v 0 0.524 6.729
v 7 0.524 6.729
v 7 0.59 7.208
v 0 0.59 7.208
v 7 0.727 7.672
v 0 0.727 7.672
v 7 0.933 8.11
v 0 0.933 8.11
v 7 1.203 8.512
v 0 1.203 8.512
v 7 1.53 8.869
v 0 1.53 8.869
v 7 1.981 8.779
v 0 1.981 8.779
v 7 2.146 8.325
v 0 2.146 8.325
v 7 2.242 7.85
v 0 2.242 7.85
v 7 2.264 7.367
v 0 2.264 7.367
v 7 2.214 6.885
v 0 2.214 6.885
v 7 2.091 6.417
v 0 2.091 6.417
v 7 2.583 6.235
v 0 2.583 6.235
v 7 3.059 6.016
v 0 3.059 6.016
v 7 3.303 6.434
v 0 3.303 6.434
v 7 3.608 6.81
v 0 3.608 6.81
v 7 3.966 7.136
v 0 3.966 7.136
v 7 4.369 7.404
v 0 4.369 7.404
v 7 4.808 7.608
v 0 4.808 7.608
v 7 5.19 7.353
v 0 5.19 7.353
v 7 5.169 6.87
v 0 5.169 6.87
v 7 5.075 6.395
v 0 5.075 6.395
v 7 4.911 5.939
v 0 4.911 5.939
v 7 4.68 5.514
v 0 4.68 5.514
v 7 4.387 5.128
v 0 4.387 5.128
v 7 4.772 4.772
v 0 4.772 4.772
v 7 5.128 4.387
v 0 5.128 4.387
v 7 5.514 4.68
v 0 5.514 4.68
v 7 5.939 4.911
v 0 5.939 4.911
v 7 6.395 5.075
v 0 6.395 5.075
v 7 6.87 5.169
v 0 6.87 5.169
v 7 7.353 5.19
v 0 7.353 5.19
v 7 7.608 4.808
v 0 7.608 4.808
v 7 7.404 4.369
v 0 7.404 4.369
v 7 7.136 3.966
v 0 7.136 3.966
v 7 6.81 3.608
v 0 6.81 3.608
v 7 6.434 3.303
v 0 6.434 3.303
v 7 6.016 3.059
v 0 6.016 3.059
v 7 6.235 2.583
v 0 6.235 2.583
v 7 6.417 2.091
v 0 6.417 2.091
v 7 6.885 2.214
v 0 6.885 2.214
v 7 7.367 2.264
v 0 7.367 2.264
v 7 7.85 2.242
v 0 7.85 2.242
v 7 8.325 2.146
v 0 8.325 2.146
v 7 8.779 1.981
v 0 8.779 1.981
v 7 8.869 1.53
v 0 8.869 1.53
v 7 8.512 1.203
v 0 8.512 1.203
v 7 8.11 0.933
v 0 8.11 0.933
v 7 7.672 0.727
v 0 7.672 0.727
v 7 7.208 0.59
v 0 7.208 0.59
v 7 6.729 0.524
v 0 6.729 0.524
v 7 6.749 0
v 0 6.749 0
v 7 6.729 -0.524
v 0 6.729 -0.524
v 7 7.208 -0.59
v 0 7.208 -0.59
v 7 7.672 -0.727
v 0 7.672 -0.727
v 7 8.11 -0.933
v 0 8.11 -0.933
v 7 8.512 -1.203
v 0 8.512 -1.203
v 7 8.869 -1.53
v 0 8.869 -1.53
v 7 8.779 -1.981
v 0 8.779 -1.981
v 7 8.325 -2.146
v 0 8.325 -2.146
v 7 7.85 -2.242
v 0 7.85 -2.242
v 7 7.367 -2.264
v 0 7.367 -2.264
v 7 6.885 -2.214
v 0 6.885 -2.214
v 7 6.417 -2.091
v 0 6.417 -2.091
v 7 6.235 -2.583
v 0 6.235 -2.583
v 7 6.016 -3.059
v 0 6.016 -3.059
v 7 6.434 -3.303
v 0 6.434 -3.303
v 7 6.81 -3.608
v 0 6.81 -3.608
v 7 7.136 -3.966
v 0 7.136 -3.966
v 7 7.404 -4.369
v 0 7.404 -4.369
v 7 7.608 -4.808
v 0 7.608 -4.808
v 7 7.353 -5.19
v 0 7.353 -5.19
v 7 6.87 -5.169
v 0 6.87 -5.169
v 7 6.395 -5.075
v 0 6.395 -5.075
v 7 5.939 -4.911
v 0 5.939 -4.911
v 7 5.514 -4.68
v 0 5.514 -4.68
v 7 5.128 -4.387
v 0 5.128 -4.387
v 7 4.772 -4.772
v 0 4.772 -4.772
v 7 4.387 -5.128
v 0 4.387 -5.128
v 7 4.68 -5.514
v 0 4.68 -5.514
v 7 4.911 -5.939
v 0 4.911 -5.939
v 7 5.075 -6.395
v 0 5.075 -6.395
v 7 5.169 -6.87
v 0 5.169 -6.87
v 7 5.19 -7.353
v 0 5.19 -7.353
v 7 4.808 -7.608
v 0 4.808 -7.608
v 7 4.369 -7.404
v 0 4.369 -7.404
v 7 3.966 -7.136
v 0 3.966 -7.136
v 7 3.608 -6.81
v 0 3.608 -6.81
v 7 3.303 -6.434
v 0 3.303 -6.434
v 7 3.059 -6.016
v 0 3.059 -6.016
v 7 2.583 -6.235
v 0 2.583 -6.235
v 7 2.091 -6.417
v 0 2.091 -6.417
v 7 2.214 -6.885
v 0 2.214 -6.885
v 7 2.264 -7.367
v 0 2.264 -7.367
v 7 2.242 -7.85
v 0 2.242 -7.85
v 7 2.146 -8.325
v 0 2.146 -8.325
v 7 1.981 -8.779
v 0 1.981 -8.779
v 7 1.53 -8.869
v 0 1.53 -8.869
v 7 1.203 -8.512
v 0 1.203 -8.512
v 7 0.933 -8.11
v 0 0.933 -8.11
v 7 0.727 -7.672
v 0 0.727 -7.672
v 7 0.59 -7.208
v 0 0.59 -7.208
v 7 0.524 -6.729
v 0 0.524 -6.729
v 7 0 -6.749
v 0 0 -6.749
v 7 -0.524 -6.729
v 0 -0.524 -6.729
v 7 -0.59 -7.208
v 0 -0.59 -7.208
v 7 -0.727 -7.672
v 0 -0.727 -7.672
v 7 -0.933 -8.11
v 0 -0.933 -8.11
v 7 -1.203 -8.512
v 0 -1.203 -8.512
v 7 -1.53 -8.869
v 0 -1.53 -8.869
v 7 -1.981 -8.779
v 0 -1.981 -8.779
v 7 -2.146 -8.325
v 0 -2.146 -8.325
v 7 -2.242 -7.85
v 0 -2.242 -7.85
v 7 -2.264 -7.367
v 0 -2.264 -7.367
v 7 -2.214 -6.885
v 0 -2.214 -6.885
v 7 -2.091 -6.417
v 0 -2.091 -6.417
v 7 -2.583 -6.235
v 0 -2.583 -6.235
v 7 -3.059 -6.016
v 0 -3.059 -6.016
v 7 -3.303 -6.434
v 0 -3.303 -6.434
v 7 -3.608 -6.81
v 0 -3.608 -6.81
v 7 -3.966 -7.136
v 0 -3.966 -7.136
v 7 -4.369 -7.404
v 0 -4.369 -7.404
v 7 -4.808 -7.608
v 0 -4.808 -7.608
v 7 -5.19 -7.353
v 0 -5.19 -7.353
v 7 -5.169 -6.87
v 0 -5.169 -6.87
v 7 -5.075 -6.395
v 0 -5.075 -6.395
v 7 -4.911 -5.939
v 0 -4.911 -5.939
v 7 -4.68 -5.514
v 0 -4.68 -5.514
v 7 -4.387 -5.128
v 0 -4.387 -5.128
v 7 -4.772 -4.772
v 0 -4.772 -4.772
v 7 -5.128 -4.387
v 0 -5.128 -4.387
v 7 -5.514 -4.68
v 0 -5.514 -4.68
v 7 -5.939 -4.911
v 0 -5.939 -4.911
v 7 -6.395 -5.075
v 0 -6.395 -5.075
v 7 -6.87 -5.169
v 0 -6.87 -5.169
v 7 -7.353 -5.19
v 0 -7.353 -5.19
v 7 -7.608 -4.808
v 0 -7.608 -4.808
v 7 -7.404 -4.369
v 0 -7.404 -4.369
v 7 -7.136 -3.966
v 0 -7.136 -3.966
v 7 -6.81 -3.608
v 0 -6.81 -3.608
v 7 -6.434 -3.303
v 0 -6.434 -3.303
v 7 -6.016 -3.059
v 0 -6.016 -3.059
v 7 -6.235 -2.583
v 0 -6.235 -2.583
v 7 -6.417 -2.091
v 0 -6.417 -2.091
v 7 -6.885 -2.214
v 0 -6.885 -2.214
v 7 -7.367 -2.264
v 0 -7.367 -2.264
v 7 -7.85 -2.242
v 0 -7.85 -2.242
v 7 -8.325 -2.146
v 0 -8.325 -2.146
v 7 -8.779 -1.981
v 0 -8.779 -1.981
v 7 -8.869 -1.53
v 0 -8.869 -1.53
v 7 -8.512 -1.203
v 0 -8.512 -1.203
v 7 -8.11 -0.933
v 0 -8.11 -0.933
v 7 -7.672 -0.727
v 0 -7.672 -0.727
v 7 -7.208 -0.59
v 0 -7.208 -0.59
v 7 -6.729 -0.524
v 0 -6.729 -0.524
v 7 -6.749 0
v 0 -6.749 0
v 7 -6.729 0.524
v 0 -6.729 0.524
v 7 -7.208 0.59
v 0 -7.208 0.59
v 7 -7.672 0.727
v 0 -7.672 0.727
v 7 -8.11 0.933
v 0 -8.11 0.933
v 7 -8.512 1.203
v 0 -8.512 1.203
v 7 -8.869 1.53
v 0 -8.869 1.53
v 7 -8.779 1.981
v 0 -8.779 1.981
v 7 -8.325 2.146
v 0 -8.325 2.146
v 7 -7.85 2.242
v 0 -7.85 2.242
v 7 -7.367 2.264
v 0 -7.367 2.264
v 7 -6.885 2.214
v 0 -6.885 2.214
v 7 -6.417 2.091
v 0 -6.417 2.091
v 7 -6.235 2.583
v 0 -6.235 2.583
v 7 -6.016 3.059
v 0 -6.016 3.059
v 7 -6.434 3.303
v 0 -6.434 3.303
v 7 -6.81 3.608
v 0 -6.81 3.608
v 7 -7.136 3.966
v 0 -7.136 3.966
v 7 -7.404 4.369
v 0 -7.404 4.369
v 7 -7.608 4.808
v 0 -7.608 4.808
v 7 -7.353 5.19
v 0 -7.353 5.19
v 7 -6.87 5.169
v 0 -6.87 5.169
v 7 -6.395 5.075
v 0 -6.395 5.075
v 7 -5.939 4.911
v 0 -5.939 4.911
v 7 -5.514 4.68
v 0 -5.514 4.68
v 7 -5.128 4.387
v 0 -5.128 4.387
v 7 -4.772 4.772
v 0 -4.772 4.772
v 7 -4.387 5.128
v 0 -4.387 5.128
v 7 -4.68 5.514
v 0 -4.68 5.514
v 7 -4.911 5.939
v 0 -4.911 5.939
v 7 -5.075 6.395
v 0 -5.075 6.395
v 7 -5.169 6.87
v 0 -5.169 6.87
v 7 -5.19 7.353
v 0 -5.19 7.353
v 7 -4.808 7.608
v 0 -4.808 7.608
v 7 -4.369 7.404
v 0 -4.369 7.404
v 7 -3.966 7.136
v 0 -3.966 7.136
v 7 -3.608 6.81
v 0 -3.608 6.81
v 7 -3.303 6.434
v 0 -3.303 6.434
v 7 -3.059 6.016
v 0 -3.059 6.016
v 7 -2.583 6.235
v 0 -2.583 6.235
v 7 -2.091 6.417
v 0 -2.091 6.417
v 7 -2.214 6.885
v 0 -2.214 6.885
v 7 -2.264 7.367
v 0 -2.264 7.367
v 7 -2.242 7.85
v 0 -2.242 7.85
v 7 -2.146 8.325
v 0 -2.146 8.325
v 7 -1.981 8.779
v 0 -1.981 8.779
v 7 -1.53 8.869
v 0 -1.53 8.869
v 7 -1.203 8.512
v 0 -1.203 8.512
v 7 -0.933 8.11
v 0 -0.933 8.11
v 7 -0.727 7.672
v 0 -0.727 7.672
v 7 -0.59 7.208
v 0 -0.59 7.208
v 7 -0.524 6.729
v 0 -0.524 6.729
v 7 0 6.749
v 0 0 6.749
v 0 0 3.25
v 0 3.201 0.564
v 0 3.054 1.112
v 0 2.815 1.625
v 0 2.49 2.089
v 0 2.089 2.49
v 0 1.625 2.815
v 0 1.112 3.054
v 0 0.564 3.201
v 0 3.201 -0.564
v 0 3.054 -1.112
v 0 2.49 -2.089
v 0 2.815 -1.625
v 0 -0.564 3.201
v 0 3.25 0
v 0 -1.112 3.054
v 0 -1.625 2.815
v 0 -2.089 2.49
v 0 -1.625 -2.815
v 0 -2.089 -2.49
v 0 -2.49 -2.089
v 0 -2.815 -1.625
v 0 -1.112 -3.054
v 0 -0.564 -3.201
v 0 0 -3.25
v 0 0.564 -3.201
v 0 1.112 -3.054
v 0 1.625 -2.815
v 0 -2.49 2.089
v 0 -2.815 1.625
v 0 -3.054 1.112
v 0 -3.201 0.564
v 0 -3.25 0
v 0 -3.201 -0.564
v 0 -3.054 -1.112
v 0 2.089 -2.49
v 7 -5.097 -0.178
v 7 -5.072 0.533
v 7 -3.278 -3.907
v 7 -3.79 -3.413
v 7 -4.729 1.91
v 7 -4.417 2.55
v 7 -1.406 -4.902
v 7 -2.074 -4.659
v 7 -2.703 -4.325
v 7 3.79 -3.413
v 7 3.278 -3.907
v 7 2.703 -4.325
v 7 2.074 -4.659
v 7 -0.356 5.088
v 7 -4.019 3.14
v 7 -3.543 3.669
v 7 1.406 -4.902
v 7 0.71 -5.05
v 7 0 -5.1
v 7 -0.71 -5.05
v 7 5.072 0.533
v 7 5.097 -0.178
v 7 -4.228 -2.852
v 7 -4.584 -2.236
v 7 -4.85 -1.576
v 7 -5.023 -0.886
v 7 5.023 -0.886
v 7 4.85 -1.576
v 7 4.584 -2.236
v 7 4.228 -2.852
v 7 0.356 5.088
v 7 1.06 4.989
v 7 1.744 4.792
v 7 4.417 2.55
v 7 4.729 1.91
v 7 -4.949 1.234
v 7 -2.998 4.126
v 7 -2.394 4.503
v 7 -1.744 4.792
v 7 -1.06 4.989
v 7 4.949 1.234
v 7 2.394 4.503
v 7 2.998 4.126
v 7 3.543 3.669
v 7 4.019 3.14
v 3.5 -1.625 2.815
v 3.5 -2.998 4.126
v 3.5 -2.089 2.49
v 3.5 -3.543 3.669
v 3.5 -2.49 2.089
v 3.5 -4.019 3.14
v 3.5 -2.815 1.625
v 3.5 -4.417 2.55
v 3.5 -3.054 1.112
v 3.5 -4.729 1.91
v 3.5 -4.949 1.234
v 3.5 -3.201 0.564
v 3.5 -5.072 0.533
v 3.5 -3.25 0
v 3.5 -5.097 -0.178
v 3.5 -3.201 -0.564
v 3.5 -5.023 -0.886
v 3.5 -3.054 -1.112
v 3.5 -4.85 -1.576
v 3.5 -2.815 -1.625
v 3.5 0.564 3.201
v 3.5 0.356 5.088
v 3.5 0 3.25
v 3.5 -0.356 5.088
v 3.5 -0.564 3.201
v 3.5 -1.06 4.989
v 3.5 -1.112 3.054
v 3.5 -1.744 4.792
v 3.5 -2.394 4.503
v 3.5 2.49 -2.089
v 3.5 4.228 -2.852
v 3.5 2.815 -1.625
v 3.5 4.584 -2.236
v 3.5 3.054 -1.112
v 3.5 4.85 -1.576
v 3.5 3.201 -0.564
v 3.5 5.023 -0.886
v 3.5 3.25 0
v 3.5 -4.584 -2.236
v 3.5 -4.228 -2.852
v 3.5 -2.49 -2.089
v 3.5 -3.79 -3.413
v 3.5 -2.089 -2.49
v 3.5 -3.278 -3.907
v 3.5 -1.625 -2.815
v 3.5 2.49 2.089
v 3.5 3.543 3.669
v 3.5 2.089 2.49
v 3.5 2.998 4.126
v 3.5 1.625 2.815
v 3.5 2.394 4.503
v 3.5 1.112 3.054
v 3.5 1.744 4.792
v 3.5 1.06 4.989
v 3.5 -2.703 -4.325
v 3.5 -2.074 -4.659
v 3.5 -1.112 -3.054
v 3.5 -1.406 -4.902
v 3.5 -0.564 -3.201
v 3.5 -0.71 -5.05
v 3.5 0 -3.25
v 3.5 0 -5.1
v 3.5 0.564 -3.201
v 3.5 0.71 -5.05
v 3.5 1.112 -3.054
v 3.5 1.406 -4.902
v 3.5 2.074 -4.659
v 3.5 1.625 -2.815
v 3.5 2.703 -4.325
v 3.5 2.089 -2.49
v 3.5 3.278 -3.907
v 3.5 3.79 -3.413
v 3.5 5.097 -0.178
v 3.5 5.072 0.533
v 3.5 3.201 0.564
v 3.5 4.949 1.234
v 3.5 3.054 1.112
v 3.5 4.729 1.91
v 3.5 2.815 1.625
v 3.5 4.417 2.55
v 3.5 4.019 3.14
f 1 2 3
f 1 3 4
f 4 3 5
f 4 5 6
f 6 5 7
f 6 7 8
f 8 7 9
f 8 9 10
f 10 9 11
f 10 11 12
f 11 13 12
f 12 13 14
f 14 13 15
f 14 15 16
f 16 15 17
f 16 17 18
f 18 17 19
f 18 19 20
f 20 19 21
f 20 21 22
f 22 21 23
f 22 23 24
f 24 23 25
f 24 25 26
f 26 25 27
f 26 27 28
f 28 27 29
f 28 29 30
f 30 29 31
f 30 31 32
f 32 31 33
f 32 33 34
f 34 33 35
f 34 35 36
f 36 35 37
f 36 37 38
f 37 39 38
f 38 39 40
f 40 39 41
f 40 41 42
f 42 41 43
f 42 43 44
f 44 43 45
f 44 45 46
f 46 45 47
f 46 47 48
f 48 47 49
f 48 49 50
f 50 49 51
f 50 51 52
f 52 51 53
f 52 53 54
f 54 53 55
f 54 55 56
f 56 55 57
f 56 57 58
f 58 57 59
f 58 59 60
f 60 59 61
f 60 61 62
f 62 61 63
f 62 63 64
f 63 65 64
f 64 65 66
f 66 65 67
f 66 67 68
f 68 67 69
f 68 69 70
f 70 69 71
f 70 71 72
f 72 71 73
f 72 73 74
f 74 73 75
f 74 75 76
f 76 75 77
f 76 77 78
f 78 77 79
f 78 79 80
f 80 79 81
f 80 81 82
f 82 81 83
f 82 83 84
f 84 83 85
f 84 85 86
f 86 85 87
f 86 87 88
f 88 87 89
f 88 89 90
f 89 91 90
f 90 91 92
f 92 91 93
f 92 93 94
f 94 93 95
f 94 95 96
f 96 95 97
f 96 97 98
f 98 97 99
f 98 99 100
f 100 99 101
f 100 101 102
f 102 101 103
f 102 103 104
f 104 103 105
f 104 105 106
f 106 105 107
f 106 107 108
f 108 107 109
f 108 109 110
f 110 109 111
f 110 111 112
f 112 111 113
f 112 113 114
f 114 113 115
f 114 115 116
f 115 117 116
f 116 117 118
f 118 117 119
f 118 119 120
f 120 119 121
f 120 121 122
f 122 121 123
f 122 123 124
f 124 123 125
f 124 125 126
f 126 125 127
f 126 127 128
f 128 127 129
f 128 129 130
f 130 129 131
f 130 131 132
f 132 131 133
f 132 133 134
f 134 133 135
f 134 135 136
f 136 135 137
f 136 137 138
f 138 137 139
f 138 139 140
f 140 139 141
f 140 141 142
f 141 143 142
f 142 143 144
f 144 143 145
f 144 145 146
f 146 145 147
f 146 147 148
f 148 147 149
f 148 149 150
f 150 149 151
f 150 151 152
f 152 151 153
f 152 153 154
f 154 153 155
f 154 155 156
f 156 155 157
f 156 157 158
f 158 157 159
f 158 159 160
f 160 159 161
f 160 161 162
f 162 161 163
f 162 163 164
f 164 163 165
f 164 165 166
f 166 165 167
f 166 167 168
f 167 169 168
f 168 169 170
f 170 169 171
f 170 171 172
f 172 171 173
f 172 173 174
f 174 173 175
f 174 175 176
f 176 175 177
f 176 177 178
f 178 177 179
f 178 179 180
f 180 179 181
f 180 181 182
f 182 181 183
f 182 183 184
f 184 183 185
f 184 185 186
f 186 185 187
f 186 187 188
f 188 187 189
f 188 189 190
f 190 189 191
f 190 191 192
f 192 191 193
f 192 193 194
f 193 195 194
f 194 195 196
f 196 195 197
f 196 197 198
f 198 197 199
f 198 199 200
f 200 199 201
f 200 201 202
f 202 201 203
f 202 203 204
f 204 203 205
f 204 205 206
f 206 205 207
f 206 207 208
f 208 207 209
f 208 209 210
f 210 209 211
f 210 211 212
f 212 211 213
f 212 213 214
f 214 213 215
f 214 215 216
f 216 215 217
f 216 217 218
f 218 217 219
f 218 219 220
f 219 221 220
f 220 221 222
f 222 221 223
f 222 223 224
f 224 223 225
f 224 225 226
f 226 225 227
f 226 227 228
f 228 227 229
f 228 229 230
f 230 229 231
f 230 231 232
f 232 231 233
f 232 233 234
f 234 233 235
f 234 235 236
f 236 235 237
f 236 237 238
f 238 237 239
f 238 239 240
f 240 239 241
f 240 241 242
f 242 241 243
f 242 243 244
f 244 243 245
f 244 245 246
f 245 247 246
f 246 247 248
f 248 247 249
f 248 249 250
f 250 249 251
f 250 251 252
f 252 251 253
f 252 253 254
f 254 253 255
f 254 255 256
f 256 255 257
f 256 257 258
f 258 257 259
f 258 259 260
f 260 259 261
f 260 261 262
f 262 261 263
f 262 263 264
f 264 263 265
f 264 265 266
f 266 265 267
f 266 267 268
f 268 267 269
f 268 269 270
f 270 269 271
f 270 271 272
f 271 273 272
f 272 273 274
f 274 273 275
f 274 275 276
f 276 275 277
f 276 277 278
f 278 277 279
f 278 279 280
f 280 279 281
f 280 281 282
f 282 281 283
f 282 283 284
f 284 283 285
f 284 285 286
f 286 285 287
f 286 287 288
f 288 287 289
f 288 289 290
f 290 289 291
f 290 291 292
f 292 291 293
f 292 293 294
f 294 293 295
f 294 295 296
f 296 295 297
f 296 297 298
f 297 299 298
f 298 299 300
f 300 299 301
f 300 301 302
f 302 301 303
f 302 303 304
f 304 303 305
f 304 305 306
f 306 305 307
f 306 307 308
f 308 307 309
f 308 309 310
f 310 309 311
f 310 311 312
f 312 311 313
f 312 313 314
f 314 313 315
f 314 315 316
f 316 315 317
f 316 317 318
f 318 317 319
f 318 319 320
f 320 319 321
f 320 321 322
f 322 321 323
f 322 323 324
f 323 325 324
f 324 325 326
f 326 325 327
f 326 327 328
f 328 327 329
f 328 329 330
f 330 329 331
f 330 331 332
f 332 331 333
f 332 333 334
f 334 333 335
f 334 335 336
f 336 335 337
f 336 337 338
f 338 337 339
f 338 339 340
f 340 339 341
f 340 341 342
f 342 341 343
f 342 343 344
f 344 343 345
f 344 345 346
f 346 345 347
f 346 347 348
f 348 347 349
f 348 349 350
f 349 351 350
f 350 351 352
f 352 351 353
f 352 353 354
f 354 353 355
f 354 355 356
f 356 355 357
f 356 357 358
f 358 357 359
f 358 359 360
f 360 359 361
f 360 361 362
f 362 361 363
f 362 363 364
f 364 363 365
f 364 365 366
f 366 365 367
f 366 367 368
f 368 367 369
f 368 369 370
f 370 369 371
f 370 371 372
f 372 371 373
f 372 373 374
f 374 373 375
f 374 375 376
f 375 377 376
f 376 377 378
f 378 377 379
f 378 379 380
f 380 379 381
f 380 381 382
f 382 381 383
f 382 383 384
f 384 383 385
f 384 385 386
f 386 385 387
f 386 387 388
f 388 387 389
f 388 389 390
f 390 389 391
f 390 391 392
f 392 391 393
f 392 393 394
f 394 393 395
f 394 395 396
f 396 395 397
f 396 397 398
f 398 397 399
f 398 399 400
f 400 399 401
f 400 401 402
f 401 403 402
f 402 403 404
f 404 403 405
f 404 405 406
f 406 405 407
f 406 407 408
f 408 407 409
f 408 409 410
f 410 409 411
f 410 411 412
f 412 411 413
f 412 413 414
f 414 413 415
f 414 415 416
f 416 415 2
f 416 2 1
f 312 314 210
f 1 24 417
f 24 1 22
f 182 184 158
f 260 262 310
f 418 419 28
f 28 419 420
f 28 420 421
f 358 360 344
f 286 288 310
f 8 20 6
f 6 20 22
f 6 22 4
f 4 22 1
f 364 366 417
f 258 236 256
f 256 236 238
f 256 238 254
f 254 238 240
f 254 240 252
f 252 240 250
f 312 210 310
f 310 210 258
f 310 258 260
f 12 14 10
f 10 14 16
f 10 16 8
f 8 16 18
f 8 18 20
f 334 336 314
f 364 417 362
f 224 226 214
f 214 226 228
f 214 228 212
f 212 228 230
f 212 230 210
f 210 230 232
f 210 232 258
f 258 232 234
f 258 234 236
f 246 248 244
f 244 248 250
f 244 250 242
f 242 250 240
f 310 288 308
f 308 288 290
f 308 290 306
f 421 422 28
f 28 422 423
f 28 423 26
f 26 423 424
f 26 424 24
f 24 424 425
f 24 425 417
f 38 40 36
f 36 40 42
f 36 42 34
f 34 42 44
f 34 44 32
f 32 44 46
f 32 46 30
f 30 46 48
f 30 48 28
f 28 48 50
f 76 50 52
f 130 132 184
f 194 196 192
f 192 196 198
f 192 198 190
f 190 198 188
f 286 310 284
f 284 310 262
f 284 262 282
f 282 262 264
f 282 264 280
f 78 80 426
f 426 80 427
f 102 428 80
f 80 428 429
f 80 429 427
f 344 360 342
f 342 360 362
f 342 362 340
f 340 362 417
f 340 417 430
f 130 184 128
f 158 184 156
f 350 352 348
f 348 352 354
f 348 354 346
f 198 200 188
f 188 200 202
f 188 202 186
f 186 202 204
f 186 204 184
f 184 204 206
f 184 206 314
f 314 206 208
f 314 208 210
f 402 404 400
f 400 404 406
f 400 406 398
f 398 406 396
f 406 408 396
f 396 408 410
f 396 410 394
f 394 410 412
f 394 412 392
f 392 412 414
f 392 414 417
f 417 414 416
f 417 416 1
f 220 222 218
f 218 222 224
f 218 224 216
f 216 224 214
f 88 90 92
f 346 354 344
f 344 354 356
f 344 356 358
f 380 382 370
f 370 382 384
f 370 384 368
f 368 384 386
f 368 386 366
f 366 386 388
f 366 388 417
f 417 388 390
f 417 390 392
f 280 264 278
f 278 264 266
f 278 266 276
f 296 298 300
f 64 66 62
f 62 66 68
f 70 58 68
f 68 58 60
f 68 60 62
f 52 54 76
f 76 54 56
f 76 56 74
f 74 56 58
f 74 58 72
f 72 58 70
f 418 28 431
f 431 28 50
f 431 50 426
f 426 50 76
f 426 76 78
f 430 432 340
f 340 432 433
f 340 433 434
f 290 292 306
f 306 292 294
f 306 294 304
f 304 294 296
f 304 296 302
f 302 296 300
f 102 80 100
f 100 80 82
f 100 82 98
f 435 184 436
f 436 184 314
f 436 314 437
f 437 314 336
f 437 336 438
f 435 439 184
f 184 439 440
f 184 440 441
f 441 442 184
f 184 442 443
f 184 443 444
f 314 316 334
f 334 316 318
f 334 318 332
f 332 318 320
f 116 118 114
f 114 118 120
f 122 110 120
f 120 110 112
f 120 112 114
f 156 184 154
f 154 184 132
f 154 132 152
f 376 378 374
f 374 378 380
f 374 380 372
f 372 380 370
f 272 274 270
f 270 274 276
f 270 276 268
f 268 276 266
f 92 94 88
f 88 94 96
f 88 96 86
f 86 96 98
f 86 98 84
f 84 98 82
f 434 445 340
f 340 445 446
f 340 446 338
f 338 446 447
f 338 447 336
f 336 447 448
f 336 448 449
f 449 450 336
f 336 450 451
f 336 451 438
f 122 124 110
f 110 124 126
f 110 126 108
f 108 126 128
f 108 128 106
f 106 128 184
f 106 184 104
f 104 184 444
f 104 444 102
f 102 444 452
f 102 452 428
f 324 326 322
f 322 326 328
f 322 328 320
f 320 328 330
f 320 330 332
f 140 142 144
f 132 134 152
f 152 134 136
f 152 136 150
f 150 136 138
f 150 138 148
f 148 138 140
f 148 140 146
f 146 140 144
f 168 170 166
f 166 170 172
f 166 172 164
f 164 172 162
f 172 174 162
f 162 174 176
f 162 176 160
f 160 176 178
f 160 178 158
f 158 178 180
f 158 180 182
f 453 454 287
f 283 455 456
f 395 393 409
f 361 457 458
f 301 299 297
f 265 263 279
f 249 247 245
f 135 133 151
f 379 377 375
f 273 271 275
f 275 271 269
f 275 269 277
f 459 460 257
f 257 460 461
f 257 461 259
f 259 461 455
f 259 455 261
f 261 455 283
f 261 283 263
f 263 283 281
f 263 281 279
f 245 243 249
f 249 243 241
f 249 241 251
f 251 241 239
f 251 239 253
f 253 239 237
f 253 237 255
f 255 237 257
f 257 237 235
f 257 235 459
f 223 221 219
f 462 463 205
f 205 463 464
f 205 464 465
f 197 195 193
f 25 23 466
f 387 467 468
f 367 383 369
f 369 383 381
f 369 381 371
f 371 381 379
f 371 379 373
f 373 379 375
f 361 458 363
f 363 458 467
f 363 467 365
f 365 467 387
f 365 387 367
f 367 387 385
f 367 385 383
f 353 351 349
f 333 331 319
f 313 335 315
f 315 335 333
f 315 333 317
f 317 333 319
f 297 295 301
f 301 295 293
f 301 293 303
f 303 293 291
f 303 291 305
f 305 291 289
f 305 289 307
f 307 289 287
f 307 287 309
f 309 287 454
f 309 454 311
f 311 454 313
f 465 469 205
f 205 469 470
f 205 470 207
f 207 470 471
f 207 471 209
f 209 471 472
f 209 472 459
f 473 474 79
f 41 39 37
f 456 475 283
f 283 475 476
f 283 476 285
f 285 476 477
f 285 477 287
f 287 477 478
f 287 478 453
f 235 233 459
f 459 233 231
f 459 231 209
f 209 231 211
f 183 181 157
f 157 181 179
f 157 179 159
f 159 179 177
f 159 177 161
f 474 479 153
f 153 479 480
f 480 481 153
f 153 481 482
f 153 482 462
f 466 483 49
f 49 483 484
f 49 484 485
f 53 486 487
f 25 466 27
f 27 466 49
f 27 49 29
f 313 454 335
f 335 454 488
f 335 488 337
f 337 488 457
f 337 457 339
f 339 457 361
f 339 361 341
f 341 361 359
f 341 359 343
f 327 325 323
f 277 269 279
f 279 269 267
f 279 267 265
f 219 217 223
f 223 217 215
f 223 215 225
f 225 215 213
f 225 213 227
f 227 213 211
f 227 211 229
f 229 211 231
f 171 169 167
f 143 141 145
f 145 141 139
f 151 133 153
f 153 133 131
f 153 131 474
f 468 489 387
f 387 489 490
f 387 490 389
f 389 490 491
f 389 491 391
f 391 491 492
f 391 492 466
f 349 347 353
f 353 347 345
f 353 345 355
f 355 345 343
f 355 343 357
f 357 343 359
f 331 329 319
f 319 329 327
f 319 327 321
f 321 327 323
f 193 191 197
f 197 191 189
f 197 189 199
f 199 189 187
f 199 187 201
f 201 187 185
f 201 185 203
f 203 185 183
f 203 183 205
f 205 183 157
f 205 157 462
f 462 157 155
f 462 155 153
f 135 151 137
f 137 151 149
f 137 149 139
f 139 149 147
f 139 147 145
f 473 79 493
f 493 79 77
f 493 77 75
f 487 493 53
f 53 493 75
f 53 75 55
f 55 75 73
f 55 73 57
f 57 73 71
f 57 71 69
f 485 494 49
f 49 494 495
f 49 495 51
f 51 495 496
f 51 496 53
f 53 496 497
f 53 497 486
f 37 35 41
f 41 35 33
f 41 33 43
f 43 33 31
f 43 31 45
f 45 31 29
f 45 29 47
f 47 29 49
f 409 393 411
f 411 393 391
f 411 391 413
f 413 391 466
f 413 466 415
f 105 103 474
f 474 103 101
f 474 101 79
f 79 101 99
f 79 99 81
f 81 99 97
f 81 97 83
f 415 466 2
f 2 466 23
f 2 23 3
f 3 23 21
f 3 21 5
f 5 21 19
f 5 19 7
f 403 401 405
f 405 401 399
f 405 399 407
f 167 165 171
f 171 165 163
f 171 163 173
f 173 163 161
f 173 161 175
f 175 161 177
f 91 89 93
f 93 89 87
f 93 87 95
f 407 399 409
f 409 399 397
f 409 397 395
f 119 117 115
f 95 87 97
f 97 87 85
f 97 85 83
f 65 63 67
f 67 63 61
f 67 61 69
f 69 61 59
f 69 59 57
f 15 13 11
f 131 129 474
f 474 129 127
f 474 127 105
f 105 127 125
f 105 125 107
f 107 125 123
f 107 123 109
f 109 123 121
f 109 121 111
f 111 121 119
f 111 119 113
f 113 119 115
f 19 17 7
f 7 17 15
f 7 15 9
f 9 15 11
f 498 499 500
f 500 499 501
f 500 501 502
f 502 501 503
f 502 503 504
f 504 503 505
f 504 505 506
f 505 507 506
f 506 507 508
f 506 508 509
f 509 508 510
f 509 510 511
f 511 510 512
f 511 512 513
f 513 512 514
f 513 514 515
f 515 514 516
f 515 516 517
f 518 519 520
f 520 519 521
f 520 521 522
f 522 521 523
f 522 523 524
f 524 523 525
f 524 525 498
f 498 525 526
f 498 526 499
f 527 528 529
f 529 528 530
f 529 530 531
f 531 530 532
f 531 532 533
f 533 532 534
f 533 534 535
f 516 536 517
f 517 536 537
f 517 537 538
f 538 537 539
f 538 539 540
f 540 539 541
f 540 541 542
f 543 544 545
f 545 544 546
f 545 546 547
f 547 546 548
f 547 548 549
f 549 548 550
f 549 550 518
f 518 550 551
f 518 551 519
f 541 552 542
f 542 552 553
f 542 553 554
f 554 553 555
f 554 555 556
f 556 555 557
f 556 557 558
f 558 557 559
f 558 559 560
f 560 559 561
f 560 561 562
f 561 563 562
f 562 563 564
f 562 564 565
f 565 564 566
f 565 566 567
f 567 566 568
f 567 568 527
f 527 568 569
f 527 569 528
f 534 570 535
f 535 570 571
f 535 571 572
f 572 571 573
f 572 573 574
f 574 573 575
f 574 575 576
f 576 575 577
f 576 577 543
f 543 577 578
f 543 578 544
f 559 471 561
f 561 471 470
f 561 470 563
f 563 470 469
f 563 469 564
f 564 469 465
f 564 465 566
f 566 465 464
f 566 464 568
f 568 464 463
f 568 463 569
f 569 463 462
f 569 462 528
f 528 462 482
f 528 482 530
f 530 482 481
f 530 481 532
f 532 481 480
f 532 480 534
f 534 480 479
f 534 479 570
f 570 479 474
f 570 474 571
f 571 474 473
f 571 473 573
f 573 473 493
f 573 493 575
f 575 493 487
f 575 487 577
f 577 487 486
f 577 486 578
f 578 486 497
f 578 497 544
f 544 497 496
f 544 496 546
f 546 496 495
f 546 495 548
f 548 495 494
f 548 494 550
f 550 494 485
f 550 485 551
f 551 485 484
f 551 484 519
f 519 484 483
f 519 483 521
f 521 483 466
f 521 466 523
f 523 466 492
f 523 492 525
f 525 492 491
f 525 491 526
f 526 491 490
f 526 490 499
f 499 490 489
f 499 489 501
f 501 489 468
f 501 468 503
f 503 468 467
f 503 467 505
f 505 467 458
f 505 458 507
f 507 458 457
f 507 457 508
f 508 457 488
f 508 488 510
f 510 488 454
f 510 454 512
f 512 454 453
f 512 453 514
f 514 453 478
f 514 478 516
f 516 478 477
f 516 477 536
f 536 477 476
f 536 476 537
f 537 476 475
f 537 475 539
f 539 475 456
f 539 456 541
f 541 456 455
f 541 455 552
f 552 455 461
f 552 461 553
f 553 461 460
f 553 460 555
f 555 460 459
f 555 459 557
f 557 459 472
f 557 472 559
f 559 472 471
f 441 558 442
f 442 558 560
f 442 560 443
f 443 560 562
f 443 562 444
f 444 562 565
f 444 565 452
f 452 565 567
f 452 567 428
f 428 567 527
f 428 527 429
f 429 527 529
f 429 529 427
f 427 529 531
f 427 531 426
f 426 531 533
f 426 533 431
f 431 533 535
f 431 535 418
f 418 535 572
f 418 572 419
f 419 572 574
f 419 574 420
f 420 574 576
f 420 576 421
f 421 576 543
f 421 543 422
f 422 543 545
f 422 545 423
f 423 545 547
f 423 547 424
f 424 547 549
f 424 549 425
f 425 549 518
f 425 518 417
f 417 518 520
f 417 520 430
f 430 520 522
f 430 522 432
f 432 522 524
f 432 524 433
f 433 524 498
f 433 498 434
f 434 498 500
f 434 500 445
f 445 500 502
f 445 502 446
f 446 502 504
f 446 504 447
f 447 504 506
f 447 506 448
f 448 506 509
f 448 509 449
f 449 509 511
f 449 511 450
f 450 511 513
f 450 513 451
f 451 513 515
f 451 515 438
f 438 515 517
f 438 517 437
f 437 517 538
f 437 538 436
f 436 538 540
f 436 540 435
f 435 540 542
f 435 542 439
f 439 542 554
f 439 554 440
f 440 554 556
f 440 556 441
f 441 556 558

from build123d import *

# Parameters (mm, degrees)
ESQUISSE1_R             = 1.5
BOSS_EXTRU_1_DEPTH      = 7
ESQUISSE2_R             = 5.1
ENL_V_MAT_EXTRU_1_DEPTH = 3.5
ESQUISSE3_R             = 3.25
ENL_V_MAT_EXTRU_2_DEPTH = 4.5


with BuildPart() as part:
    # Esquisse1 → Boss.-Extru.1 (new body)
    with BuildSketch(Plane(origin=(7, 0, 0), x_dir=(0, 0, -1), z_dir=(1, 0, 0))):
        with BuildLine():
            ThreePointArc((-6.728643397, 0.523792937), (-6.749, 0), (-6.728643397, -0.523792937))
            ThreePointArc((-6.728643397, -0.523792937), (-7.89518869, -0.821876255), (-8.869006051, -1.529944991))
            ThreePointArc((-8.869006051, -1.529944991), (-8.827067524, -1.755812898), (-8.779377764, -1.980536814))
            ThreePointArc((-8.779377764, -1.980536814), (-7.608721662, -2.262043257), (-6.416902795, -2.091018776))
            ThreePointArc((-6.416902795, -2.091018776), (-6.235262965, -2.582730485), (-6.016009037, -3.058861924))
            ThreePointArc((-6.016009037, -3.058861924), (-6.97968481, -3.780672557), (-7.608408563, -4.80750654))
            ThreePointArc((-7.608408563, -4.80750654), (-7.483226511, -5.000132097), (-7.353168799, -5.189499843))
            ThreePointArc((-7.353168799, -5.189499843), (-6.163895735, -5.001587189), (-5.128246912, -4.387491836))
            ThreePointArc((-5.128246912, -4.387491836), (-4.772263666, -4.772263666), (-4.387491836, -5.128246912))
            ThreePointArc((-4.387491836, -5.128246912), (-5.001587189, -6.163895735), (-5.189499843, -7.353168799))
            ThreePointArc((-5.189499843, -7.353168799), (-5.000132097, -7.483226511), (-4.80750654, -7.608408563))
            ThreePointArc((-4.80750654, -7.608408563), (-3.780672557, -6.97968481), (-3.058861924, -6.016009037))
            ThreePointArc((-3.058861924, -6.016009037), (-2.582730485, -6.235262965), (-2.091018776, -6.416902795))
            ThreePointArc((-2.091018776, -6.416902795), (-2.262043257, -7.608721662), (-1.980536814, -8.779377764))
            ThreePointArc((-1.980536814, -8.779377764), (-1.755812898, -8.827067524), (-1.529944991, -8.869006051))
            ThreePointArc((-1.529944991, -8.869006051), (-0.821876255, -7.89518869), (-0.523792937, -6.728643397))
            ThreePointArc((-0.523792937, -6.728643397), (0, -6.749), (0.523792937, -6.728643397))
            ThreePointArc((0.523792937, -6.728643397), (0.821876255, -7.89518869), (1.529944991, -8.869006051))
            ThreePointArc((1.529944991, -8.869006051), (1.755812898, -8.827067524), (1.980536814, -8.779377764))
            ThreePointArc((1.980536814, -8.779377764), (2.262043257, -7.608721662), (2.091018776, -6.416902795))
            ThreePointArc((2.091018776, -6.416902795), (2.582730485, -6.235262965), (3.058861924, -6.016009037))
            ThreePointArc((3.058861924, -6.016009037), (3.780672557, -6.97968481), (4.80750654, -7.608408563))
            ThreePointArc((4.80750654, -7.608408563), (5.000132097, -7.483226511), (5.189499843, -7.353168799))
            ThreePointArc((5.189499843, -7.353168799), (5.001587189, -6.163895735), (4.387491836, -5.128246912))
            ThreePointArc((4.387491836, -5.128246912), (4.772263666, -4.772263666), (5.128246912, -4.387491836))
            ThreePointArc((5.128246912, -4.387491836), (6.163895735, -5.001587189), (7.353168799, -5.189499843))
            ThreePointArc((7.353168799, -5.189499843), (7.483226511, -5.000132097), (7.608408563, -4.80750654))
            ThreePointArc((7.608408563, -4.80750654), (6.97968481, -3.780672557), (6.016009037, -3.058861924))
            ThreePointArc((6.016009037, -3.058861924), (6.235262965, -2.582730485), (6.416902795, -2.091018776))
            ThreePointArc((6.416902795, -2.091018776), (7.608721662, -2.262043257), (8.779377764, -1.980536814))
            ThreePointArc((8.779377764, -1.980536814), (8.827067524, -1.755812898), (8.869006051, -1.529944991))
            ThreePointArc((8.869006051, -1.529944991), (7.89518869, -0.821876255), (6.728643397, -0.523792937))
            ThreePointArc((6.728643397, -0.523792937), (6.749, 0), (6.728643397, 0.523792937))
            ThreePointArc((6.728643397, 0.523792937), (7.89518869, 0.821876255), (8.869006051, 1.529944991))
            ThreePointArc((8.869006051, 1.529944991), (8.827067524, 1.755812898), (8.779377764, 1.980536814))
            ThreePointArc((8.779377764, 1.980536814), (7.608721662, 2.262043257), (6.416902795, 2.091018776))
            ThreePointArc((6.416902795, 2.091018776), (6.235262965, 2.582730485), (6.016009037, 3.058861924))
            ThreePointArc((6.016009037, 3.058861924), (6.97968481, 3.780672557), (7.608408563, 4.80750654))
            ThreePointArc((7.608408563, 4.80750654), (7.483226511, 5.000132097), (7.353168799, 5.189499843))
            ThreePointArc((7.353168799, 5.189499843), (6.163895735, 5.001587189), (5.128246912, 4.387491836))
            ThreePointArc((5.128246912, 4.387491836), (4.772263666, 4.772263666), (4.387491836, 5.128246912))
            ThreePointArc((4.387491836, 5.128246912), (5.001587189, 6.163895735), (5.189499843, 7.353168799))
            ThreePointArc((5.189499843, 7.353168799), (5.000132097, 7.483226511), (4.80750654, 7.608408563))
            ThreePointArc((4.80750654, 7.608408563), (3.780672557, 6.97968481), (3.058861924, 6.016009037))
            ThreePointArc((3.058861924, 6.016009037), (2.582730485, 6.235262965), (2.091018776, 6.416902795))
            ThreePointArc((2.091018776, 6.416902795), (2.262043257, 7.608721662), (1.980536814, 8.779377764))
            ThreePointArc((1.980536814, 8.779377764), (1.755812898, 8.827067524), (1.529944991, 8.869006051))
            ThreePointArc((1.529944991, 8.869006051), (0.821876255, 7.89518869), (0.523792937, 6.728643397))
            ThreePointArc((0.523792937, 6.728643397), (0, 6.749), (-0.523792937, 6.728643397))
            ThreePointArc((-0.523792937, 6.728643397), (-0.821876255, 7.89518869), (-1.529944991, 8.869006051))
            ThreePointArc((-1.529944991, 8.869006051), (-1.755812898, 8.827067524), (-1.980536814, 8.779377764))
            ThreePointArc((-1.980536814, 8.779377764), (-2.262043257, 7.608721662), (-2.091018776, 6.416902795))
            ThreePointArc((-2.091018776, 6.416902795), (-2.582730485, 6.235262965), (-3.058861924, 6.016009037))
            ThreePointArc((-3.058861924, 6.016009037), (-3.780672557, 6.97968481), (-4.80750654, 7.608408563))
            ThreePointArc((-4.80750654, 7.608408563), (-5.000132097, 7.483226511), (-5.189499843, 7.353168799))
            ThreePointArc((-5.189499843, 7.353168799), (-5.001587189, 6.163895735), (-4.387491836, 5.128246912))
            ThreePointArc((-4.387491836, 5.128246912), (-4.772263666, 4.772263666), (-5.128246912, 4.387491836))
            ThreePointArc((-5.128246912, 4.387491836), (-6.163895735, 5.001587189), (-7.353168799, 5.189499843))
            ThreePointArc((-7.353168799, 5.189499843), (-7.483226511, 5.000132097), (-7.608408563, 4.80750654))
            ThreePointArc((-7.608408563, 4.80750654), (-6.97968481, 3.780672557), (-6.016009037, 3.058861924))
            ThreePointArc((-6.016009037, 3.058861924), (-6.235262965, 2.582730485), (-6.416902795, 2.091018776))
            ThreePointArc((-6.416902795, 2.091018776), (-7.608721662, 2.262043257), (-8.779377764, 1.980536814))
            ThreePointArc((-8.779377764, 1.980536814), (-8.827067524, 1.755812898), (-8.869006051, 1.529944991))
            ThreePointArc((-8.869006051, 1.529944991), (-7.89518869, 0.821876255), (-6.728643397, 0.523792937))
        make_face()
        Circle(ESQUISSE1_R, mode=Mode.SUBTRACT)
    extrude(amount=-BOSS_EXTRU_1_DEPTH)

    # Esquisse2 → Enlèv. mat.-Extru.1 (cut)
    with BuildSketch(Plane(origin=(7, 0, 0), x_dir=(0, 0, -1), z_dir=(1, 0, 0))):
        Circle(ESQUISSE2_R)
    extrude(amount=-ENL_V_MAT_EXTRU_1_DEPTH, mode=Mode.SUBTRACT)

    # Esquisse3 → Enlèv. mat.-Extru.2 (cut, through all)
    with BuildSketch(Plane(origin=(3.5, 0, 0), x_dir=(0, 0, -1), z_dir=(1, 0, 0))):
        Circle(ESQUISSE3_R)
    extrude(amount=-ENL_V_MAT_EXTRU_2_DEPTH, mode=Mode.SUBTRACT)


solid = part.part
